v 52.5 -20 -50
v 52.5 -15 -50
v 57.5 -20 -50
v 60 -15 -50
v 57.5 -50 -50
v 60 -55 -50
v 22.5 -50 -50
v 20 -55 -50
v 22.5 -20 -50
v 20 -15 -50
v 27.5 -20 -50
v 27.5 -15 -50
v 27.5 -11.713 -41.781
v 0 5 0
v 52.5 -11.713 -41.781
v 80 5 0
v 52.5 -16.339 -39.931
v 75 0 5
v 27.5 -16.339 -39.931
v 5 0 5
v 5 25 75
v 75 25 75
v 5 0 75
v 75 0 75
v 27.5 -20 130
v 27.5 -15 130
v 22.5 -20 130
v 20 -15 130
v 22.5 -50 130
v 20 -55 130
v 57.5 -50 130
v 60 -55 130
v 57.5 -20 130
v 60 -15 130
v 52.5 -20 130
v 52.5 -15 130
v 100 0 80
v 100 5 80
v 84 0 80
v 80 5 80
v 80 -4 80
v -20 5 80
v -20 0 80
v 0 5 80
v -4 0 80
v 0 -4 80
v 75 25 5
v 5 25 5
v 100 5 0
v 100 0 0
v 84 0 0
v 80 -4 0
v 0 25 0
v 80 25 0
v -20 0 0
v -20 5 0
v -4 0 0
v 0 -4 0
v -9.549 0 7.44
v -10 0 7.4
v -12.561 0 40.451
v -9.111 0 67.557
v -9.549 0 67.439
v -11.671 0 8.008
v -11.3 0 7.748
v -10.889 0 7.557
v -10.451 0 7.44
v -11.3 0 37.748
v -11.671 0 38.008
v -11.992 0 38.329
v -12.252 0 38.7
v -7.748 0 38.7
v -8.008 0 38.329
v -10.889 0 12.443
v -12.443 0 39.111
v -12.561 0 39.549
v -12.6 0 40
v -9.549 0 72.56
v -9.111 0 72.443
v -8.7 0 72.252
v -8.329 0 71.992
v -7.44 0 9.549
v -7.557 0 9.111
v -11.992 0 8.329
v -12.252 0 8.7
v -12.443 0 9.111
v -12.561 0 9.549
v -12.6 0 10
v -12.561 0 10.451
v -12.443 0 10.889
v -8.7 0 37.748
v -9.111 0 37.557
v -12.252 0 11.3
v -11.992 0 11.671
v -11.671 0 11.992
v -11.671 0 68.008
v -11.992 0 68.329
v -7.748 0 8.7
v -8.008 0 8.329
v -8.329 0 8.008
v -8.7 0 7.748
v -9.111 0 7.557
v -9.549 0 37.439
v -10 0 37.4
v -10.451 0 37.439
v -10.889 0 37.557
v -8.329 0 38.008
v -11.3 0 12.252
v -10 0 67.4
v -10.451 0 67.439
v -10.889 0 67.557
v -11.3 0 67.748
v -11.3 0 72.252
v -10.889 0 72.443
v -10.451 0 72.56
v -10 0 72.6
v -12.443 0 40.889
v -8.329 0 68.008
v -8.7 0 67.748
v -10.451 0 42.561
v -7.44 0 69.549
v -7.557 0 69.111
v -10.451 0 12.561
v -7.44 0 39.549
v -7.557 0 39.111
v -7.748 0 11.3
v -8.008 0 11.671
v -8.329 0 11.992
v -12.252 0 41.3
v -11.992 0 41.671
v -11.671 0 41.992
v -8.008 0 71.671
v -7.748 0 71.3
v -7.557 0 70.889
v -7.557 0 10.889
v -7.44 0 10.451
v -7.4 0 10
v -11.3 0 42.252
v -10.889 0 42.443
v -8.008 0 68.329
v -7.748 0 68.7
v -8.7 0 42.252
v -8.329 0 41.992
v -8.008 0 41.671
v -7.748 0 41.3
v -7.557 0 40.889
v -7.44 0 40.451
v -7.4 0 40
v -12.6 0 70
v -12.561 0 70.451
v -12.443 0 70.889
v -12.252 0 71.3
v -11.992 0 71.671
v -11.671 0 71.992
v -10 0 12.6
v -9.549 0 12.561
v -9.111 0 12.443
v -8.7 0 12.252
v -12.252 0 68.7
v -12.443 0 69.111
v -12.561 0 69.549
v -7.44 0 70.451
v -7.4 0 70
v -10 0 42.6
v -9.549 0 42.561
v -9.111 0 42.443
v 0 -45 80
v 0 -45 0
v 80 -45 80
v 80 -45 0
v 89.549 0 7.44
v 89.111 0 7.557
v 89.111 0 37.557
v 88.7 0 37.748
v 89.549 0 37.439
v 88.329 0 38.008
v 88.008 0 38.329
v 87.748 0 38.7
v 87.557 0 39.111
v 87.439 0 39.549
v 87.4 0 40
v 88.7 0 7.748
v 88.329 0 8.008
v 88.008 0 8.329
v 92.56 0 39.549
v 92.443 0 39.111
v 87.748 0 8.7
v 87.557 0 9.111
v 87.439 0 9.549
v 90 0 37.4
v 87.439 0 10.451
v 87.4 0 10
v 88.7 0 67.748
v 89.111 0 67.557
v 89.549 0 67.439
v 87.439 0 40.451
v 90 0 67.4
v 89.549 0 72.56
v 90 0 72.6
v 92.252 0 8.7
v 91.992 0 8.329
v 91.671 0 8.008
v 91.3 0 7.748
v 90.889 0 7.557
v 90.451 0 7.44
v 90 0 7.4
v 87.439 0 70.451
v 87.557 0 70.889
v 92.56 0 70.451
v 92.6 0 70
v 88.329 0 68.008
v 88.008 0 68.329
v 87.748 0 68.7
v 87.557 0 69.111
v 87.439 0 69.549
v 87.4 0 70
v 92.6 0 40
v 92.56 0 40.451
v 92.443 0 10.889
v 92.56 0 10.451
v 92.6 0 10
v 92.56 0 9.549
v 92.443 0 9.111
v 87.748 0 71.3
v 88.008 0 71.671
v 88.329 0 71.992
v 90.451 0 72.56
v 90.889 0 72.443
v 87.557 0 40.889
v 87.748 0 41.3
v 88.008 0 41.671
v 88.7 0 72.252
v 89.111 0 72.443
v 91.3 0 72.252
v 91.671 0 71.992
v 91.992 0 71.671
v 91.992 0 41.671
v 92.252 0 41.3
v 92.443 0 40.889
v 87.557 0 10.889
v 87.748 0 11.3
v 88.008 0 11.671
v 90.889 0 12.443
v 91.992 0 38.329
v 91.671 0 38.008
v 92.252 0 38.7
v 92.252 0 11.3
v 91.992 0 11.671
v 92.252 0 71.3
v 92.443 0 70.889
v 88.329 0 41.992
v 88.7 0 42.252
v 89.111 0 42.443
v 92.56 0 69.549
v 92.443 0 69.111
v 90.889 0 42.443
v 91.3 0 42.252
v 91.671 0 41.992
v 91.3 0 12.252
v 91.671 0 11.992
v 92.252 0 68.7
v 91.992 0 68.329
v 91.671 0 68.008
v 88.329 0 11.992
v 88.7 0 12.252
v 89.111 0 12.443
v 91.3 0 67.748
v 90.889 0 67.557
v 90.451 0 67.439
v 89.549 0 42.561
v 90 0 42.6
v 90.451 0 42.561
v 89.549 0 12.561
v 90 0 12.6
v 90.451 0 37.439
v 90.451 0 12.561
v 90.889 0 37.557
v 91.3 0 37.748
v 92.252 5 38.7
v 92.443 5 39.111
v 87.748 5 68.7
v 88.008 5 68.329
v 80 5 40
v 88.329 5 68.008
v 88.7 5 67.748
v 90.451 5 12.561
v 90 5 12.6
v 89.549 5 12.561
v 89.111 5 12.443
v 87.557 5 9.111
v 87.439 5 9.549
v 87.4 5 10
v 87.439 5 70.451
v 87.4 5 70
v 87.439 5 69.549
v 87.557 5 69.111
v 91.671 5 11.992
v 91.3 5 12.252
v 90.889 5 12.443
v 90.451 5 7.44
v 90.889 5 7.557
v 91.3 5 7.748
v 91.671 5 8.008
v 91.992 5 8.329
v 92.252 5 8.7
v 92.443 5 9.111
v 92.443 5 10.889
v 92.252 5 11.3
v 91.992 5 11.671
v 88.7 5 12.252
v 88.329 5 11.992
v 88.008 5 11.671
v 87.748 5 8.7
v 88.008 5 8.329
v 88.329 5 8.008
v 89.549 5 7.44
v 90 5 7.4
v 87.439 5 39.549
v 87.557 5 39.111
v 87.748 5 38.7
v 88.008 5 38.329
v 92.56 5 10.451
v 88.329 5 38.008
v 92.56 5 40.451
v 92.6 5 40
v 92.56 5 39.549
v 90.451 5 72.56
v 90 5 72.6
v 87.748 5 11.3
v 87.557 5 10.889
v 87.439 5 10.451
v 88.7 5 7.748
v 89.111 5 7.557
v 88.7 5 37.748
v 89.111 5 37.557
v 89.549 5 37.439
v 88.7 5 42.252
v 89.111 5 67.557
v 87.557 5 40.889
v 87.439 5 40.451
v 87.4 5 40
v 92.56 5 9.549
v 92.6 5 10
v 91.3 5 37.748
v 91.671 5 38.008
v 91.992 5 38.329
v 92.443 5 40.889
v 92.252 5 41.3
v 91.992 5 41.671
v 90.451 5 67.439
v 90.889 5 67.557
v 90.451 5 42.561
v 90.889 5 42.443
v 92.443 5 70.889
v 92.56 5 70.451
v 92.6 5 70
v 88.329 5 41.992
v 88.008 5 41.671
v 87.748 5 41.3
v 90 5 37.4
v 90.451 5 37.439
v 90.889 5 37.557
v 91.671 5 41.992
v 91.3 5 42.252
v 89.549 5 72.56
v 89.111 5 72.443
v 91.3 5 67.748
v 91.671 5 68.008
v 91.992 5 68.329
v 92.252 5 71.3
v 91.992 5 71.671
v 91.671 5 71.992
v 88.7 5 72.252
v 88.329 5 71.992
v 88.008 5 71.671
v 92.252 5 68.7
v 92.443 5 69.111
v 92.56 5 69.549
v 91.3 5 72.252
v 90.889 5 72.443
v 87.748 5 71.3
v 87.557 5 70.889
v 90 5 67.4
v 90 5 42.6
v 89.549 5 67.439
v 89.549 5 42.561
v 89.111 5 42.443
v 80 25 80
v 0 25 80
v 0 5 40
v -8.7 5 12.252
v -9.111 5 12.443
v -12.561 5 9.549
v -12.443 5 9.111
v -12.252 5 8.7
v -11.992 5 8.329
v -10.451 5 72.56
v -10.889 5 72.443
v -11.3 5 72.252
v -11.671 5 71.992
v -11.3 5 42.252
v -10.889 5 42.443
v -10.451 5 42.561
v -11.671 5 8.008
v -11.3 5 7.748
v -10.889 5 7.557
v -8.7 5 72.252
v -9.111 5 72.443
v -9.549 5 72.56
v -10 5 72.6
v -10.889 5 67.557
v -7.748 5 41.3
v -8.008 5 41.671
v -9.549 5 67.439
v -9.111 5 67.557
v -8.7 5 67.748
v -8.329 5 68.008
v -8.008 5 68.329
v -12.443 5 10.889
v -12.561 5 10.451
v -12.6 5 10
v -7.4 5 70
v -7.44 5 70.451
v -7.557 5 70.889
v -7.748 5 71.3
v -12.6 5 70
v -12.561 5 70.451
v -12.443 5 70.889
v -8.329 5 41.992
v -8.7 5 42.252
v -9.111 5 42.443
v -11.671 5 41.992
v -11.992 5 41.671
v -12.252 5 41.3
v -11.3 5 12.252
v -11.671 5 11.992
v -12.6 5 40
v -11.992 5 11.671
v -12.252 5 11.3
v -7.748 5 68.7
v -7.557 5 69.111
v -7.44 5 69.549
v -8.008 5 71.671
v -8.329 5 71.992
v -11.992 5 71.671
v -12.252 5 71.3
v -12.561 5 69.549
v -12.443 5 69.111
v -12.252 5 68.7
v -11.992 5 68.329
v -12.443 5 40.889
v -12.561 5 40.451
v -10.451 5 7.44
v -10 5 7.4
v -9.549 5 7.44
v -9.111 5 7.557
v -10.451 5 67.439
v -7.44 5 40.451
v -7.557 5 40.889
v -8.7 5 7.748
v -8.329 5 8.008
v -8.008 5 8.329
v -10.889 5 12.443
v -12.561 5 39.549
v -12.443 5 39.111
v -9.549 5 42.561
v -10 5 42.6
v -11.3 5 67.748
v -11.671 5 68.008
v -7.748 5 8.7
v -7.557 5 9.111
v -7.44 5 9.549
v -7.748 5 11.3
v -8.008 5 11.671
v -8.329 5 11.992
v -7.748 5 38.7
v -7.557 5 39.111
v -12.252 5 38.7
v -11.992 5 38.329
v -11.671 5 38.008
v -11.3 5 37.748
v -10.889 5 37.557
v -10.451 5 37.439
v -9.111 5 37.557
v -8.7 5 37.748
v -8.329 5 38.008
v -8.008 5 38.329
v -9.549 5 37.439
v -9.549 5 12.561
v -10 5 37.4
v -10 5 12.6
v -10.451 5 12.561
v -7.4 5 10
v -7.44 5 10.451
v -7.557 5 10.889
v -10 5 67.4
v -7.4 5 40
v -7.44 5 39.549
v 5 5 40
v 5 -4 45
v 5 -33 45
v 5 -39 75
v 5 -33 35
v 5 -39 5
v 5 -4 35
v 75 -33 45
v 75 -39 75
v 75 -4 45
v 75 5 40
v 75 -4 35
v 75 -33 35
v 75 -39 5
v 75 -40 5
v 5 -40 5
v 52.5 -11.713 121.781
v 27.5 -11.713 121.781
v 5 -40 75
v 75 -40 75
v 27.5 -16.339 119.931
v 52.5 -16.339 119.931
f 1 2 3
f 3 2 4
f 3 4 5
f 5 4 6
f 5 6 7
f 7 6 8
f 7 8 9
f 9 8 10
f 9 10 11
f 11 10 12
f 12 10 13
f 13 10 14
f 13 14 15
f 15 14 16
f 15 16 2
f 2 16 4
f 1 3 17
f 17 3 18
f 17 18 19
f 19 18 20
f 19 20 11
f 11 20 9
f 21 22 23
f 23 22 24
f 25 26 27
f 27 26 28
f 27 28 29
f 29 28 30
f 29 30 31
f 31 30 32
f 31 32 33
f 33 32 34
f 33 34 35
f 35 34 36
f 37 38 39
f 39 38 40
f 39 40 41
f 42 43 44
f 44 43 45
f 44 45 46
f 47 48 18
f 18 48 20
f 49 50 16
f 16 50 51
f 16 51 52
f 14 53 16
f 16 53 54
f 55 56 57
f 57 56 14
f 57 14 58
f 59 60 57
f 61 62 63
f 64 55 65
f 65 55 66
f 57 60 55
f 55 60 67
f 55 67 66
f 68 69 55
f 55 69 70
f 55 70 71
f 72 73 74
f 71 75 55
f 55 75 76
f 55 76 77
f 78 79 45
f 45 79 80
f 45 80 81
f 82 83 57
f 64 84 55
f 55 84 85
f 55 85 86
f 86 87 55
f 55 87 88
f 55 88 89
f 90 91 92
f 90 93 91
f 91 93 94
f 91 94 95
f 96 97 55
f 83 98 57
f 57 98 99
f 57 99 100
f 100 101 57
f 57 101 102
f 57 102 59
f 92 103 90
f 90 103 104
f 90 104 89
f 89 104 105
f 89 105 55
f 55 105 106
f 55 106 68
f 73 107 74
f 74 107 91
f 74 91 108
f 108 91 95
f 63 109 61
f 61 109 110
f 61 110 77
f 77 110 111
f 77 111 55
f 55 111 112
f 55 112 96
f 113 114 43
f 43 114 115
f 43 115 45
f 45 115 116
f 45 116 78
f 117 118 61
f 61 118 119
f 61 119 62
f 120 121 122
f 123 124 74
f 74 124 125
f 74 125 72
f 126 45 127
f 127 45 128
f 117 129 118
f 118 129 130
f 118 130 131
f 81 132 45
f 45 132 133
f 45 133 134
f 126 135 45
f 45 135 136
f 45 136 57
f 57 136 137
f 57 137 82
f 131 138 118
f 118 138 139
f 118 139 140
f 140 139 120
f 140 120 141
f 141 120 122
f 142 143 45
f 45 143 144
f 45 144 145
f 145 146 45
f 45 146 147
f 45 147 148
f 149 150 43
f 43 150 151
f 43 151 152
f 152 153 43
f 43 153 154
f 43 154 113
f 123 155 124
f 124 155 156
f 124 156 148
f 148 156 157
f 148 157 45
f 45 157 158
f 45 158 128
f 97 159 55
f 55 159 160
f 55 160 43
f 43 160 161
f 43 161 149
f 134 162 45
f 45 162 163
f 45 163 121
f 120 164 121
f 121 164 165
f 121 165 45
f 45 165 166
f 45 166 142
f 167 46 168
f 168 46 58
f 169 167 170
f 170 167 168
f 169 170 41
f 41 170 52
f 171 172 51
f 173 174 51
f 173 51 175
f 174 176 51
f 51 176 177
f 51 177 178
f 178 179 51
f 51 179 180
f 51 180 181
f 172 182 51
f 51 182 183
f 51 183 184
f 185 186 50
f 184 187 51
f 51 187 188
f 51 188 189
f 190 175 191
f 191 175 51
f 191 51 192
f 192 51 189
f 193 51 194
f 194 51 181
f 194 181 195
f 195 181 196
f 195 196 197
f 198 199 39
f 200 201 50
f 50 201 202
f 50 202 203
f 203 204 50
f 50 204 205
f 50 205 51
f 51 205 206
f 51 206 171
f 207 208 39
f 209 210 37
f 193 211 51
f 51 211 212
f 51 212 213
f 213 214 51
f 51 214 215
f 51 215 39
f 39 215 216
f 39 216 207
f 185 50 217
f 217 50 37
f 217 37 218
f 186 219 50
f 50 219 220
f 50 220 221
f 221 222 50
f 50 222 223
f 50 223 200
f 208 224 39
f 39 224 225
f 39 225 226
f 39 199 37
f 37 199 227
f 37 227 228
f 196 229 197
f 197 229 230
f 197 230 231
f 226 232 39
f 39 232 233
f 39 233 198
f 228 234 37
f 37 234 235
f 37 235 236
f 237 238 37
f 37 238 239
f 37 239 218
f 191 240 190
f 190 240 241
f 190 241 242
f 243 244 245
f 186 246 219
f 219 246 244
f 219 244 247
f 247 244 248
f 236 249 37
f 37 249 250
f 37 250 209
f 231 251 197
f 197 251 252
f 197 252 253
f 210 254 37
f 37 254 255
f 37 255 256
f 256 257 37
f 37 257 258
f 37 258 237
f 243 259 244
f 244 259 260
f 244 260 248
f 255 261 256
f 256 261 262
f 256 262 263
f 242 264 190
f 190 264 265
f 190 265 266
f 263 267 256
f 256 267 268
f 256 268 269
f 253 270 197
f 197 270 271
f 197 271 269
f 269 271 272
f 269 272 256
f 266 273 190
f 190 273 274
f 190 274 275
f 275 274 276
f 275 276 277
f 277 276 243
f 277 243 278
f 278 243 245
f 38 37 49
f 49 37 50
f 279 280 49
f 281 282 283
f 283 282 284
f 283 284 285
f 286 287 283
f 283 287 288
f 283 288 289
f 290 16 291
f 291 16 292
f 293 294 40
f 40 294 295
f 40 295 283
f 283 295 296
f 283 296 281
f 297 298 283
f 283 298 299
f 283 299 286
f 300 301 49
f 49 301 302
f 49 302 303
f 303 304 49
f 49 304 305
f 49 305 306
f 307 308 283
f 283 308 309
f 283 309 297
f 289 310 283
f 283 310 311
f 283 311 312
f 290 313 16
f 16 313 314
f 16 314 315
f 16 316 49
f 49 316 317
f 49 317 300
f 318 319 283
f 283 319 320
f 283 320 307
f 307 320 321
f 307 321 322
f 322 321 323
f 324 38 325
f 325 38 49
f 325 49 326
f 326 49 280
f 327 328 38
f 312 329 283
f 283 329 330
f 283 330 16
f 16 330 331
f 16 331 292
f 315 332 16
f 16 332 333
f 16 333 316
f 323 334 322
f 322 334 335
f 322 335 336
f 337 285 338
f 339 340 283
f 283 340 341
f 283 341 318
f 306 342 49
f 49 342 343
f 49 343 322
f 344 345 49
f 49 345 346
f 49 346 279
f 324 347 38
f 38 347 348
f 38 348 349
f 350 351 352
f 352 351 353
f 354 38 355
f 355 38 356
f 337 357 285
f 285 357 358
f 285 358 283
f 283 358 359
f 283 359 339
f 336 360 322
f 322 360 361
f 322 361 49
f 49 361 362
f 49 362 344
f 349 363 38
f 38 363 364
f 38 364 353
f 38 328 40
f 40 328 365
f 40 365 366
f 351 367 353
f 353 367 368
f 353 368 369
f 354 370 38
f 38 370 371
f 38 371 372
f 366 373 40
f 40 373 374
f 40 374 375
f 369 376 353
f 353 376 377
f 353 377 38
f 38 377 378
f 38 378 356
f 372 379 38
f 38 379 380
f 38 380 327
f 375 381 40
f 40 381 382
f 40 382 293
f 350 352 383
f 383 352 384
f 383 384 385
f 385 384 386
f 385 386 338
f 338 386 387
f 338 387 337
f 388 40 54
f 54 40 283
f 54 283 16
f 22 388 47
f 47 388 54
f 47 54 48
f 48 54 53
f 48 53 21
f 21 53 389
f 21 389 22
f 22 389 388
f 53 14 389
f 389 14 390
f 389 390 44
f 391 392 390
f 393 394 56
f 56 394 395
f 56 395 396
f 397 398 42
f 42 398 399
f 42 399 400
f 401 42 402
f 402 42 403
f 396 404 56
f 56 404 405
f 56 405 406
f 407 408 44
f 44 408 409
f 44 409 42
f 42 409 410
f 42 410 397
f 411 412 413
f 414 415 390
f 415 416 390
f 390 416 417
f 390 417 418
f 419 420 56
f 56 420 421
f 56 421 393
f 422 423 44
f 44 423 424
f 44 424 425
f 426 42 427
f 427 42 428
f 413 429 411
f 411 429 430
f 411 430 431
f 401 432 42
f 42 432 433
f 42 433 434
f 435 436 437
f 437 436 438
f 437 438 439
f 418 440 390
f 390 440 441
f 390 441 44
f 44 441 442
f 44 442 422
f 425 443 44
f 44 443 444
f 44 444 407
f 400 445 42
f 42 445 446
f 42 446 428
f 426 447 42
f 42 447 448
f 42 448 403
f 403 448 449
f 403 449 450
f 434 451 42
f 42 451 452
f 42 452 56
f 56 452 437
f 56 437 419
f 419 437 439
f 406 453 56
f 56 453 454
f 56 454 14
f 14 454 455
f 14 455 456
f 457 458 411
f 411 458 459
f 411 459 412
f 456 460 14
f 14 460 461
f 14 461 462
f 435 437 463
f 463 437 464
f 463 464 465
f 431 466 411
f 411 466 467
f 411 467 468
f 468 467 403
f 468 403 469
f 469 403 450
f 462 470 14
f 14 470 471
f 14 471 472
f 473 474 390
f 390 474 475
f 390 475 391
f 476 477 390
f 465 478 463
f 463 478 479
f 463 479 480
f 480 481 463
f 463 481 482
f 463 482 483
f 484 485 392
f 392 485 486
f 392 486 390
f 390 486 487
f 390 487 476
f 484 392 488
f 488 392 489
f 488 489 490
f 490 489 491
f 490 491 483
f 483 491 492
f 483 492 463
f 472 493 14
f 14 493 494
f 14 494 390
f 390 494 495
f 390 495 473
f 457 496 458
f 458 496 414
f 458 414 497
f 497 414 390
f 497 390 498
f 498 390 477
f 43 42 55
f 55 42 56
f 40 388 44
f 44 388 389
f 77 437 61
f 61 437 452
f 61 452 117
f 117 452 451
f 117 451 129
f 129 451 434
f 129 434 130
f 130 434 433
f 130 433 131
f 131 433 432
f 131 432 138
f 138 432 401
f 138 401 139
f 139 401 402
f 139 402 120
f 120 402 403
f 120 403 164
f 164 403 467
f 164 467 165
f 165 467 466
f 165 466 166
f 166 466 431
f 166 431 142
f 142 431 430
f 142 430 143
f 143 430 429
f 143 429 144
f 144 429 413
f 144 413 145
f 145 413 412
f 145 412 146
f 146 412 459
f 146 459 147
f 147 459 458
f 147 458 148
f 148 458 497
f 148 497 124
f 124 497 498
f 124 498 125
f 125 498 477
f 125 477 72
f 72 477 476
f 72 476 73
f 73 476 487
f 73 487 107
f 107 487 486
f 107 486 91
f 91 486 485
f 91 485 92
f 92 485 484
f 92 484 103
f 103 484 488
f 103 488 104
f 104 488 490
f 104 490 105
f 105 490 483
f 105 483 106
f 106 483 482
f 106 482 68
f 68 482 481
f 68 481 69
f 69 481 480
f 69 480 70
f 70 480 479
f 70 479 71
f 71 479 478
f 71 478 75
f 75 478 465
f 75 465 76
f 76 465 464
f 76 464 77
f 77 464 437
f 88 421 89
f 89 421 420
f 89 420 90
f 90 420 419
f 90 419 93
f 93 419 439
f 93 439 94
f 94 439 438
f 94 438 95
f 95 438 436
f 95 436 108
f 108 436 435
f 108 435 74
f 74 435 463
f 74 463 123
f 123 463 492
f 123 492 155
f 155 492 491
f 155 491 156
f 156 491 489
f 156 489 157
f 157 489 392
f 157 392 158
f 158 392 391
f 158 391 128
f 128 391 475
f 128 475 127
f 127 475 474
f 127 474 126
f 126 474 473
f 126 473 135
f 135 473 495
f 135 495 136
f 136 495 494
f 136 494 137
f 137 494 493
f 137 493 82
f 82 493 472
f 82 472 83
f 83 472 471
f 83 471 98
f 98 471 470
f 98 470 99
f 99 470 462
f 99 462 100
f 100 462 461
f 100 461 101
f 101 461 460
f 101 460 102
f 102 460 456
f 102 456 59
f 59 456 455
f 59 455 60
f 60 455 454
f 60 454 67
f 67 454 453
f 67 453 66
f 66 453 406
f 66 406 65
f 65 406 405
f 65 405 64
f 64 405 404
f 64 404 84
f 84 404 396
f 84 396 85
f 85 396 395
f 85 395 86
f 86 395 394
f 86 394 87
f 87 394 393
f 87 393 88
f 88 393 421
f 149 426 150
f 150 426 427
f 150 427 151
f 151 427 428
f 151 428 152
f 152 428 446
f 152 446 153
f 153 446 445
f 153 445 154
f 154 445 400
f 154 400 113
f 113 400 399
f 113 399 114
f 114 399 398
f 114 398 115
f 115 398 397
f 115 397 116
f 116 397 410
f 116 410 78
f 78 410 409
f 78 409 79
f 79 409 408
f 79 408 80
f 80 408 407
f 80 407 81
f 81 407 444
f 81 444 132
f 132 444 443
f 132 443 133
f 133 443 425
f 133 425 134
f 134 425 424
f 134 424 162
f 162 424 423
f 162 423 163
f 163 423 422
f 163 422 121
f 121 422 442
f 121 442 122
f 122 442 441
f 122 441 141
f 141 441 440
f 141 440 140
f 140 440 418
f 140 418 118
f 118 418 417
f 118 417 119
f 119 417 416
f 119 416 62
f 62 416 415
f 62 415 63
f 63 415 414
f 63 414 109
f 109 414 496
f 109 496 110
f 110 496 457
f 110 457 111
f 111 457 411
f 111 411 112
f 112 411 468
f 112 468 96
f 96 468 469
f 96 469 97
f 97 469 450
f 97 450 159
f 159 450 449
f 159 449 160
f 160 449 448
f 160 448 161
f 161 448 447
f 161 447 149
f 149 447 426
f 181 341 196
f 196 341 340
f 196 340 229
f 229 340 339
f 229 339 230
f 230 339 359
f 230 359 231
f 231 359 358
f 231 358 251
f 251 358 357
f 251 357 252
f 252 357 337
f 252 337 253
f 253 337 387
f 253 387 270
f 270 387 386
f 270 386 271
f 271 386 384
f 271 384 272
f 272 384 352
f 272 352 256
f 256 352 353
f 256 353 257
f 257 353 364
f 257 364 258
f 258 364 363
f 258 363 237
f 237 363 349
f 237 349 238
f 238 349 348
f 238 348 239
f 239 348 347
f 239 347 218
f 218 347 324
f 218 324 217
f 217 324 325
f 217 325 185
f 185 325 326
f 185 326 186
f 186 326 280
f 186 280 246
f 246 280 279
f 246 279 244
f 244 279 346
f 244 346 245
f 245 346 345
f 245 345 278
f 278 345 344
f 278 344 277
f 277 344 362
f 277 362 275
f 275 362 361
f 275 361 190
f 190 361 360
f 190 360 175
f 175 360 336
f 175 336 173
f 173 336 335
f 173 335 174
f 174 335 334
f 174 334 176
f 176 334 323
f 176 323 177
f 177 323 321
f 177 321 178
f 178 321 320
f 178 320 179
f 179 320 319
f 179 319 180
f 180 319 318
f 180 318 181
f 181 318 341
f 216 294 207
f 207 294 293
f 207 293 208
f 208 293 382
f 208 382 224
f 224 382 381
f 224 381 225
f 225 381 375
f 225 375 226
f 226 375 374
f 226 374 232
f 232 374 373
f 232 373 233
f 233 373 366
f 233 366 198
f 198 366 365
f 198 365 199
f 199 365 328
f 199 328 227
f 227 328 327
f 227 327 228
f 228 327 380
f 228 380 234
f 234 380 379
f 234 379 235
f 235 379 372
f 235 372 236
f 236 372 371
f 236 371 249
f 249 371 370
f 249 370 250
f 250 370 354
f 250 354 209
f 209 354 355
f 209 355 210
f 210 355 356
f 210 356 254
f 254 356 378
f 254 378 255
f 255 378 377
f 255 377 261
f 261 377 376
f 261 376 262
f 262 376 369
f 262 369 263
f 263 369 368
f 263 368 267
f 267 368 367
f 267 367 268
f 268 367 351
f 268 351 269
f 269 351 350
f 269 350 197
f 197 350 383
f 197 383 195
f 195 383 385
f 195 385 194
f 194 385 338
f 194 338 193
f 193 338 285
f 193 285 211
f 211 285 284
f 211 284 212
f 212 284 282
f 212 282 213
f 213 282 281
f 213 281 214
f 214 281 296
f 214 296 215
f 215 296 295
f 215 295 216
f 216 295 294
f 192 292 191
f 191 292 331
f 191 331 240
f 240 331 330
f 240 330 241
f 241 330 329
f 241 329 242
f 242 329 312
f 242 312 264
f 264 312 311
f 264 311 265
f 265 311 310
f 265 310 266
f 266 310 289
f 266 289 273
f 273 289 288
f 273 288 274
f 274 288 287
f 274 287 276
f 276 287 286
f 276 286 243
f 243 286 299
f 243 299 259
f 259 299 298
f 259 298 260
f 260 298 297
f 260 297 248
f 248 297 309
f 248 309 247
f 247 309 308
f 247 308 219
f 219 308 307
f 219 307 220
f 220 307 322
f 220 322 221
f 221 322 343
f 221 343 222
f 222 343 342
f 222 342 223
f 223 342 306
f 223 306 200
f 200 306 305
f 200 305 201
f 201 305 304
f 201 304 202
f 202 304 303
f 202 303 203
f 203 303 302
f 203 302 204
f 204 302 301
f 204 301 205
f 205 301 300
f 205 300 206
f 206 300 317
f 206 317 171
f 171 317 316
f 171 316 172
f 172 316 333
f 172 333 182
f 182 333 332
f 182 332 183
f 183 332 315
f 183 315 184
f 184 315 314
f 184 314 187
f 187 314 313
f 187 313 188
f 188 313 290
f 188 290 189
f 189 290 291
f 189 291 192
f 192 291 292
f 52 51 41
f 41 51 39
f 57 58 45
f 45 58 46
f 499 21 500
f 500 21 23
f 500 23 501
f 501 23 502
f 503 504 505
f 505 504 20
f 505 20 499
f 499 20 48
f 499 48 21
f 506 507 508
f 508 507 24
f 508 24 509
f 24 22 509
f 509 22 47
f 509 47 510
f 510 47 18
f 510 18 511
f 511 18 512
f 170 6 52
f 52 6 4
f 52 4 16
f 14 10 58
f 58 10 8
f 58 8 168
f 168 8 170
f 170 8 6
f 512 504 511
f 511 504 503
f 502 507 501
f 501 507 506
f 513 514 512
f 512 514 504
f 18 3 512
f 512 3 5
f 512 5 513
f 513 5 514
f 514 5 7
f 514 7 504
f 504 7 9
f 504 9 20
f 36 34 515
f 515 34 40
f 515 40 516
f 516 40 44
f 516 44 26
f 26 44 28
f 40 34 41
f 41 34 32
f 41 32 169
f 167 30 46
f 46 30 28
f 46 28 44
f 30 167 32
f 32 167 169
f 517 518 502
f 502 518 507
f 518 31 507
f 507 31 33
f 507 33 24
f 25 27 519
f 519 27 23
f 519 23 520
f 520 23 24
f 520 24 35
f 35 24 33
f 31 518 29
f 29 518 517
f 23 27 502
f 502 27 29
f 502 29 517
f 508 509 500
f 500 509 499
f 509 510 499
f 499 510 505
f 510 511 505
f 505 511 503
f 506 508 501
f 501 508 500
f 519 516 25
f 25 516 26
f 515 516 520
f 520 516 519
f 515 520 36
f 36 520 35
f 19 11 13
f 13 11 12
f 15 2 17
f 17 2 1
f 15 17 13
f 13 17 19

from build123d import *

# Parameters (mm, degrees)
EXTRUDE_1_DEPTH     = 80
SKETCH_4_R          = 2.6
CUT_EXTRUDE_2_DEPTH = 150
CHAMFER_1_SIZE      = 4
CHAMFER_2_SIZE      = 4
SKETCH_8_W          = 70
SKETCH_8_H          = 70
CUT_EXTRUDE_3_DEPTH = 70
EXTRUDE_3_DEPTH     = 80
EXTRUDE_4_DEPTH     = 80
SKETCH_25_W         = 25
SKETCH_25_H         = 25.122105301
CUT_EXTRUDE_8_DEPTH = 20


with BuildPart() as part:
    # 草图2 → 凸台-拉伸1 (new body)
    with BuildSketch(Plane.XY):
        Polygon((0, 0), (0, -45), (80, -45), (80, 0), (100, 0), (100, 5), (80, 5), (80, 25), (0, 25), (0, 5), (-20, 5), (-20, 0), align=None)
    extrude(amount=EXTRUDE_1_DEPTH)

    # 草图4 → 切除-拉伸2 (cut)
    with BuildSketch(Plane(origin=(0, 5, 0), x_dir=(1, 0, 0), z_dir=(0, 1, 0))):
        with Locations(Location((-10, -40, 0), (0, 0, 180))):
            Circle(SKETCH_4_R)
        with Locations(Location((-10, -70, 0), (0, 0, 180))):
            Circle(SKETCH_4_R)
        with Locations(Location((-10, -10, 0), (0, 0, 180))):
            Circle(SKETCH_4_R)
        with Locations(Location((90, -10, 0), (0, 0, 180))):
            Circle(SKETCH_4_R)
        with Locations(Location((90, -40, 0), (0, 0, 180))):
            Circle(SKETCH_4_R)
        with Locations(Location((90, -70, 0), (0, 0, 180))):
            Circle(SKETCH_4_R)
    extrude(amount=-CUT_EXTRUDE_2_DEPTH, mode=Mode.SUBTRACT)

    # 倒角1
    chamfer_1_edges = [part.edges().sort_by_distance(p)[0] for p in [
        (80, 0, 40),
    ]]
    chamfer(chamfer_1_edges, length=CHAMFER_1_SIZE)

    # 倒角2
    chamfer_2_edges = [part.edges().sort_by_distance(p)[0] for p in [
        (0, 0, 40),
    ]]
    chamfer(chamfer_2_edges, length=CHAMFER_2_SIZE)

    # 草图8 → 切除-拉伸3 (cut)
    with BuildSketch(Plane(origin=(0, 25, 0), x_dir=(1, 0, 0), z_dir=(0, 1, 0))):
        with Locations((40, -40)):
            Rectangle(SKETCH_8_W, SKETCH_8_H)
    extrude(amount=-CUT_EXTRUDE_3_DEPTH, mode=Mode.SUBTRACT)

    # 草图19 → 放样3 section 0
    with BuildSketch(Plane(origin=(0, 0, -50), x_dir=(-1, 0, 0), z_dir=(0, 0, -1))):
        with BuildLine():
            Line((-60, -15), (-20, -15))
            Line((-20, -15), (-20, -55))
            Line((-20, -55), (-60, -55))
            Line((-60, -55), (-60, -15))
        make_face()
    # 草图17 → 放样3 section 1
    with BuildSketch(Plane(origin=(0, 0, 0), x_dir=(-1, 0, 0), z_dir=(0, 0, -1))):
        with BuildLine():
            Line((-80, 5), (0, 5))
            Line((0, 5), (0, -45))
            Line((0, -45), (-80, -45))
            Line((-80, -45), (-80, 5))
        make_face()
    loft_3 = loft()

    # 草图22 → 凸台-拉伸3 (add)
    with BuildSketch(Plane(origin=(80, 0, 0), x_dir=(0, 0, -1), z_dir=(1, 0, 0))):
        Polygon((-80, -45), (0, -45), (0, -40), (-40, -32), (-80, -40), align=None)
    extrude(amount=-EXTRUDE_3_DEPTH)

    # 草图20 → 切除-放样6 section 0
    with BuildSketch(Plane.XY.offset(5)):
        with BuildLine():
            Line((5, 0), (75, 0))
            Line((75, 0), (75, -40))
            Line((75, -40), (5, -40))
            Line((5, -40), (5, 0))
        make_face()
    # 草图21 → 切除-放样6 section 1
    with BuildSketch(Plane(origin=(0, 0, -50), x_dir=(-1, 0, 0), z_dir=(0, 0, -1))):
        with BuildLine():
            Line((-57.5, -20), (-22.5, -20))
            Line((-22.5, -20), (-22.5, -50))
            Line((-22.5, -50), (-57.5, -50))
            Line((-57.5, -50), (-57.5, -20))
        make_face()
    loft_6 = loft(mode=Mode.SUBTRACT)

    # 镜向1: 放样3, 切除-放样6 across plane
    add(loft_3.mirror(Plane.XY.offset(40)))
    add(loft_6.mirror(Plane.XY.offset(40)), mode=Mode.SUBTRACT)

    # 草图23 → 凸台-拉伸4 (add)
    with BuildSketch(Plane(origin=(80, 0, 0), x_dir=(0, 0, -1), z_dir=(1, 0, 0))):
        Polygon((-45, -45), (-45, -4), (-40, 5), (-35, -4), (-35, -45), align=None)
    extrude(amount=-EXTRUDE_4_DEPTH)

    # 草图25 → 切除-拉伸8 (cut)
    with BuildSketch(Plane(origin=(0, 31.896551724, 12.75862069), x_dir=(1, 0, 0), z_dir=(0, 0.9284766908852594, 0.3713906763541038))):
        with Locations((40, -129.98223454)):
            Rectangle(SKETCH_25_W, SKETCH_25_H)
    cut_extrude_8 = extrude(amount=-CUT_EXTRUDE_8_DEPTH, mode=Mode.SUBTRACT)

    # 镜向2: 切除-拉伸8 across plane
    add(cut_extrude_8.mirror(Plane.XY.offset(40)), mode=Mode.SUBTRACT)


solid = part.part
